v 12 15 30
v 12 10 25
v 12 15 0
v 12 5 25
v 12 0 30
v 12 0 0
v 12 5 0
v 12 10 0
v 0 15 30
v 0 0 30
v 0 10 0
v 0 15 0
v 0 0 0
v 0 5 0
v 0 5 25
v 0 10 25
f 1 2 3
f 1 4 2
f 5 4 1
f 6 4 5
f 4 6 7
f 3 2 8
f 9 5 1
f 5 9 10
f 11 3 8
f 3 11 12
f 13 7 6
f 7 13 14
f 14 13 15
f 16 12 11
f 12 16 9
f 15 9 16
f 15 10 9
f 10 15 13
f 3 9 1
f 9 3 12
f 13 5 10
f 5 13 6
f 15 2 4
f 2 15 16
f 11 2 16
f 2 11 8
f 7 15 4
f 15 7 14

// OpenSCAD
// This OpenSCAD script creates a modified rectangular prism with dimensions
// width=12mm, depth=15mm, height=30mm, and subtracts a second rectangular prism from it
holder_y = 5;
attachment_x = 12;
attachment_y = 3*holder_y;
attachment_z = 30;

module attachment_module(){
    // Main rectangular prism: width=12mm, depth=15mm, height=30mm
    difference() {
        cube([attachment_x, attachment_y, attachment_z]);
        // Subtract the second rectangular prism: width=12mm, depth=5mm, height=15mm
        translate([0, attachment_y/3, 0]) { // Position the subtracting prism within the main prism
            cube([12, 5, attachment_z-5]);
        }
    }
}


module needle_holder(){
    cube([]);
}

// Call the module to draw the modified rectangular prism
union(){
attachment_module();
    needle_holder();
}
